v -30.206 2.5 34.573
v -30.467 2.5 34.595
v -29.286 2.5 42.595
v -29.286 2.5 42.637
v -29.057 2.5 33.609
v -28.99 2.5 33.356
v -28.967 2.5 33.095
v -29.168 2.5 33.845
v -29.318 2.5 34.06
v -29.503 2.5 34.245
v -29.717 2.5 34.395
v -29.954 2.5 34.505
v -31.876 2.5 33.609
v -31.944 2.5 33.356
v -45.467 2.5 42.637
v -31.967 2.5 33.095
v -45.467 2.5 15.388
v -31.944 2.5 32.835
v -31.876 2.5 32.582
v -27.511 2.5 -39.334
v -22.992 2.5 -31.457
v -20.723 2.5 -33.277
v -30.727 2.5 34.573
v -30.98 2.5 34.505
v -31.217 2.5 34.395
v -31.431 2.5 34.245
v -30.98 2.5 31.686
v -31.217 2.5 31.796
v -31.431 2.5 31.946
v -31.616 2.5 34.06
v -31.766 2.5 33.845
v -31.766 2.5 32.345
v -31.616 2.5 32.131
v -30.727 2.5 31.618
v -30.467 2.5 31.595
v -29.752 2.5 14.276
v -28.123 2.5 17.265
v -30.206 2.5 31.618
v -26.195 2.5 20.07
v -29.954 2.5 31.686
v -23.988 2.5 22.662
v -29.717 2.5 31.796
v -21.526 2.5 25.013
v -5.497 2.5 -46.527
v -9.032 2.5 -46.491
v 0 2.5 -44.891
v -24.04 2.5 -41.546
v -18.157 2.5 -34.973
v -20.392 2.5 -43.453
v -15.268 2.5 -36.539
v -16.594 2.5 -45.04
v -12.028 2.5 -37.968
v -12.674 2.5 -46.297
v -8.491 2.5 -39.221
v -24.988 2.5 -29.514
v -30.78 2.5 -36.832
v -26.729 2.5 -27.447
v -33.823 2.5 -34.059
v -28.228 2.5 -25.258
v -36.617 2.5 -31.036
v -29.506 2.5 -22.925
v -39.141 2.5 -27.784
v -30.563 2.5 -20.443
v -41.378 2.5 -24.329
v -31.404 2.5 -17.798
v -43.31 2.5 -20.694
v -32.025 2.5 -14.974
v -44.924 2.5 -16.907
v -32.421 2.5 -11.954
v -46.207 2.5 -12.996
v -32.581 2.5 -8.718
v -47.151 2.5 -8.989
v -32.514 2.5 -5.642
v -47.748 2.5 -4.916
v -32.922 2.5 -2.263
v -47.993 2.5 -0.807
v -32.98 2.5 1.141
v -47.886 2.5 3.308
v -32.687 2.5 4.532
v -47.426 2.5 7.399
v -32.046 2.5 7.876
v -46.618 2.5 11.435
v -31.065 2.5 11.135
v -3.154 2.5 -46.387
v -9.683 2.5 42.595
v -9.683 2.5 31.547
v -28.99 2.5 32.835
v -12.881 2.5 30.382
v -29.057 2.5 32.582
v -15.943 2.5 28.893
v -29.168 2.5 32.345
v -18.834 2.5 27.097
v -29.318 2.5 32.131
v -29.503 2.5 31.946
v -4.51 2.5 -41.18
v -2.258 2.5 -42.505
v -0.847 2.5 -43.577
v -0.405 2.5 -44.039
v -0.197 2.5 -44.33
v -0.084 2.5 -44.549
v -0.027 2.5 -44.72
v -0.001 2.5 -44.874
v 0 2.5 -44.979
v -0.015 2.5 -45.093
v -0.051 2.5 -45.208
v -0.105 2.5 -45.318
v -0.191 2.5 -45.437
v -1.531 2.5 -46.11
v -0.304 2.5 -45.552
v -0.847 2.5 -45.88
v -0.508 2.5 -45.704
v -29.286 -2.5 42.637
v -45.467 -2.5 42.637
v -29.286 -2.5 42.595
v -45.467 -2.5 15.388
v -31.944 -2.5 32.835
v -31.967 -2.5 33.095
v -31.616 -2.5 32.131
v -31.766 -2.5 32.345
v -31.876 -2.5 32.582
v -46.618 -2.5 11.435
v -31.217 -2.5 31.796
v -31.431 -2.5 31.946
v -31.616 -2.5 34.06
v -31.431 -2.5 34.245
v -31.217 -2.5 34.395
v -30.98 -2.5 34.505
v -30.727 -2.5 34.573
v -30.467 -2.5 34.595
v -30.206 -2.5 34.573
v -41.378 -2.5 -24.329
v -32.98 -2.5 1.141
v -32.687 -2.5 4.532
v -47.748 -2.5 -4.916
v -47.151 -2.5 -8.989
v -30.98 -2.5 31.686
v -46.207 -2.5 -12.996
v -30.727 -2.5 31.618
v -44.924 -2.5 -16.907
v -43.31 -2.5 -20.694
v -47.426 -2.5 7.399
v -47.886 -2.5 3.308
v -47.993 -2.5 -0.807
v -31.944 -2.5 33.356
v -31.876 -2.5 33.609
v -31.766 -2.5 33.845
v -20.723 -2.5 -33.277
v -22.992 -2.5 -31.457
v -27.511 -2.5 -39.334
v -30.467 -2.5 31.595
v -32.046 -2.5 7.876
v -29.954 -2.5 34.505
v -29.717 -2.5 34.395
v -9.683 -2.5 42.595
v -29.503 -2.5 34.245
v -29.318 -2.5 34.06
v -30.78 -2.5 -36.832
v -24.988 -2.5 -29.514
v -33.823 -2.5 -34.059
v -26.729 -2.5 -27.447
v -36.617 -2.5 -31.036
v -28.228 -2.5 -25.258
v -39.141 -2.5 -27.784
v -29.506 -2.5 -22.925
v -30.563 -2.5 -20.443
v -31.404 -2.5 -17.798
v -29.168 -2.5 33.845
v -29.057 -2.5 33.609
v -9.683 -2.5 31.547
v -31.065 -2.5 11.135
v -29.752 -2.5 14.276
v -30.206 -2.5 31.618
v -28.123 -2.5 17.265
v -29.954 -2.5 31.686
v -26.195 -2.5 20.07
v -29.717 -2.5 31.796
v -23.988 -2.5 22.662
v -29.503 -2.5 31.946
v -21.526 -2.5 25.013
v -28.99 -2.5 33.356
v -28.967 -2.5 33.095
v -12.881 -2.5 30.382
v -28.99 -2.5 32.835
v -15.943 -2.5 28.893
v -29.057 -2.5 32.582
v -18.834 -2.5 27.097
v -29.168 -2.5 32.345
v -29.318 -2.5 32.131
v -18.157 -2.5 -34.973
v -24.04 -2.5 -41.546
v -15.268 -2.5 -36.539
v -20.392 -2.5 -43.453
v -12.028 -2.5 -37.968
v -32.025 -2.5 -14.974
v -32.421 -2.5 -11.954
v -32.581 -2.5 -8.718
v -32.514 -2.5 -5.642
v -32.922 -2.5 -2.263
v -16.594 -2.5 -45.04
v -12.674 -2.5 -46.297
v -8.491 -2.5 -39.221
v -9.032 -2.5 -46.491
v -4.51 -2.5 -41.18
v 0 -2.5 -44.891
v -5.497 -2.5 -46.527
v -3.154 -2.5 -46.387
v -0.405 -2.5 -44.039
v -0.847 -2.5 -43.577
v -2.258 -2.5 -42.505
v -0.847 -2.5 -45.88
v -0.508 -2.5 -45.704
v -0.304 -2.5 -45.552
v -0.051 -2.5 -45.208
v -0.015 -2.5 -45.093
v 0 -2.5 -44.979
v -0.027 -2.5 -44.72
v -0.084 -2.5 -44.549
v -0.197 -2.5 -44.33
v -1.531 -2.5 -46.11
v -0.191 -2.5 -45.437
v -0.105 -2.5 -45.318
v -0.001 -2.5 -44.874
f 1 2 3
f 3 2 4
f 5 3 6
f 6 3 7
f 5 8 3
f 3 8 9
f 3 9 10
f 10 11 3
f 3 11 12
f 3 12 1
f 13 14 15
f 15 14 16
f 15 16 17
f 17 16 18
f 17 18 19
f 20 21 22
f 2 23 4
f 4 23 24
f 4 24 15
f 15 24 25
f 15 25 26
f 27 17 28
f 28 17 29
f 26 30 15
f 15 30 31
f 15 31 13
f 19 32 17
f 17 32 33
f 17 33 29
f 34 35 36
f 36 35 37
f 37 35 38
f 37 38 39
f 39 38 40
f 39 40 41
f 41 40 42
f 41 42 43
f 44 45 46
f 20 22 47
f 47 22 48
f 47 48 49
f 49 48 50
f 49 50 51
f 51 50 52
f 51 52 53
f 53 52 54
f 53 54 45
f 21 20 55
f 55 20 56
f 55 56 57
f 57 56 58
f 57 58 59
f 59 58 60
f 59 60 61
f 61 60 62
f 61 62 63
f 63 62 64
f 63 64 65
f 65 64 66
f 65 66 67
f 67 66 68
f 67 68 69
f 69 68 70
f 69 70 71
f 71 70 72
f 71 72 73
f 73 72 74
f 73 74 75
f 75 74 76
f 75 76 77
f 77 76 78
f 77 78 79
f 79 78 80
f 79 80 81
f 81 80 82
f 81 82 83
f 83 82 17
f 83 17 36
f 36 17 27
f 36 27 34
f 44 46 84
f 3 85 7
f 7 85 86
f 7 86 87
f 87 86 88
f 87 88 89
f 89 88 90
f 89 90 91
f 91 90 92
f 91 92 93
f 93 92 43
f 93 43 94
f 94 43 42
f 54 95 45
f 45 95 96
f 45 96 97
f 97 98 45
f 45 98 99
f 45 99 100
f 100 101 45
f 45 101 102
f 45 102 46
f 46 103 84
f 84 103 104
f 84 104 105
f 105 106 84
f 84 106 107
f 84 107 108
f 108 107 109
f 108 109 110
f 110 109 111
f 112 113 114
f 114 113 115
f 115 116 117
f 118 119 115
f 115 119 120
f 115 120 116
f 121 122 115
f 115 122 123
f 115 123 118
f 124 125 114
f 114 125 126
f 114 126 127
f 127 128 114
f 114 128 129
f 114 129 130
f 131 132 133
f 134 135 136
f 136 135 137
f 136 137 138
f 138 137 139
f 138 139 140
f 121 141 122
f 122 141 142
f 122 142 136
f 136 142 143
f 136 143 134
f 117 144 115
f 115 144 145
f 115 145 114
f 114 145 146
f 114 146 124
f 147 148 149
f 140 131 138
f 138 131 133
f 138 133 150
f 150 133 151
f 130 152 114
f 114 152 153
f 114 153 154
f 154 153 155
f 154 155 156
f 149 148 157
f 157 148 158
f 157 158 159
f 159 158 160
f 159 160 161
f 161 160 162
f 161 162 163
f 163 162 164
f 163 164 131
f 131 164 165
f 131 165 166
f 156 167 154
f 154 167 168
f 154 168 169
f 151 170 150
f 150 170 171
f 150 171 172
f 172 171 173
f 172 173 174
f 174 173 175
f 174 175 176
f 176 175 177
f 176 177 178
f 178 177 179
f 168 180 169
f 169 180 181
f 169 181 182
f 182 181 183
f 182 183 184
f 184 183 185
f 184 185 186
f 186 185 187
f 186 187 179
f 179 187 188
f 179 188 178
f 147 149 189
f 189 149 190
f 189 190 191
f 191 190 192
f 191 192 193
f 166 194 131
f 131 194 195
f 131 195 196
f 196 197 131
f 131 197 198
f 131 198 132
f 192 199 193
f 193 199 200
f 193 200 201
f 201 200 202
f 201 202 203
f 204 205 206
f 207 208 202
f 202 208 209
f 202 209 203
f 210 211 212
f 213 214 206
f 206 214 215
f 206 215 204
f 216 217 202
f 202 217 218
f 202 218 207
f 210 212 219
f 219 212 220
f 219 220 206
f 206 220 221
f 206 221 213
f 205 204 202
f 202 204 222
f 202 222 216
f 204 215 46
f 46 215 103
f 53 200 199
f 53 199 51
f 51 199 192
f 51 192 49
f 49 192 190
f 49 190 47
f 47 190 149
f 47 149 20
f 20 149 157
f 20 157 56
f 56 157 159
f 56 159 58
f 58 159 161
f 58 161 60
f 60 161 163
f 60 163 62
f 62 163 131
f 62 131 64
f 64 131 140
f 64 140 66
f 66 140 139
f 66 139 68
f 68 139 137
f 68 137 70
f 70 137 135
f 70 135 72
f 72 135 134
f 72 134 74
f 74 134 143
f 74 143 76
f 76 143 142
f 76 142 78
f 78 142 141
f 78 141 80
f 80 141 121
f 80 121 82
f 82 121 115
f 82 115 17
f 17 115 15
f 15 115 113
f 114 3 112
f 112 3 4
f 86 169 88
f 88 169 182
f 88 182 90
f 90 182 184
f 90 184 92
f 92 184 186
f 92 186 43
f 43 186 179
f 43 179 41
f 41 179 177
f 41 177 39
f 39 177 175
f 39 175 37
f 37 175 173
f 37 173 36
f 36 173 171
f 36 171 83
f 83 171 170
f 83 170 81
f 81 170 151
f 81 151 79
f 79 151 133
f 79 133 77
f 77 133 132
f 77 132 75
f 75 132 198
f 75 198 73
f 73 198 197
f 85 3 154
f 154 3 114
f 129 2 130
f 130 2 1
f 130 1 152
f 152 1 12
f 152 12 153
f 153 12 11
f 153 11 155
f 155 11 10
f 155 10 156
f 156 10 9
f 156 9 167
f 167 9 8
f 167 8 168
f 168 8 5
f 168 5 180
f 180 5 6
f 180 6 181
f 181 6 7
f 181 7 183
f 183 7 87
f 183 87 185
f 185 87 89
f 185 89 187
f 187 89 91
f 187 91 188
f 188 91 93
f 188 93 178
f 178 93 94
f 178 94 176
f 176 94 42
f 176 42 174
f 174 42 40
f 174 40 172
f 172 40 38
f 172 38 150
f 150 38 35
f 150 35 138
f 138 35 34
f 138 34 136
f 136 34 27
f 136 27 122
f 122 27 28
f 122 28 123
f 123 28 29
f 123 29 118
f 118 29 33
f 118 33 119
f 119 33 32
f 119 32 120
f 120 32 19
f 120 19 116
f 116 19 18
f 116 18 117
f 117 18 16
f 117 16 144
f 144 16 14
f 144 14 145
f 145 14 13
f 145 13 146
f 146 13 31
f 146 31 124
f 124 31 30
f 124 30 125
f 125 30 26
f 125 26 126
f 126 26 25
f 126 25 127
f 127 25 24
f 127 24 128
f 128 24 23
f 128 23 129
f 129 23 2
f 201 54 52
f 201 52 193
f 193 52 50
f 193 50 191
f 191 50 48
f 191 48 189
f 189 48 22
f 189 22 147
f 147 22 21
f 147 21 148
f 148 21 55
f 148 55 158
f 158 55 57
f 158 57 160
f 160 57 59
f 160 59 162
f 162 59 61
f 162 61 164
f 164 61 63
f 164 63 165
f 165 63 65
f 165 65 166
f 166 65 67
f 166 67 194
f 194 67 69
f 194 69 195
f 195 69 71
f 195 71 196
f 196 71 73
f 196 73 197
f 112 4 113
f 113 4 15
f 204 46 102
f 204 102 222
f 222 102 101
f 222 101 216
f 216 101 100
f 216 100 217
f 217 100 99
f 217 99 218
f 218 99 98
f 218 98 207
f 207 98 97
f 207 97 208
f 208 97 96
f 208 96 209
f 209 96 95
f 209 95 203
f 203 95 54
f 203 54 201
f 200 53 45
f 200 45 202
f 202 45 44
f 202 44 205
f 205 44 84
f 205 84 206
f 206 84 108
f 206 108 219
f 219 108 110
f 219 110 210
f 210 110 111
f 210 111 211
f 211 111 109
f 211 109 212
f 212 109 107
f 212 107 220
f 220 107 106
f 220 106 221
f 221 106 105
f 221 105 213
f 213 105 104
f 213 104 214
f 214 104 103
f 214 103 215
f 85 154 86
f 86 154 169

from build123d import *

# Parameters (mm, degrees)
BOSS_EXTRUDE1_DEPTH = 2.5
SKETCH2_W           = 39
SKETCH2_H           = 19
CUT_EXTRUDE2_DEPTH  = 119.291735722
SKETCH6_R           = 1.5
CUT_EXTRUDE11_DEPTH = 119.291735722
CUT_EXTRUDE17_DEPTH = 10
SKETCH17_W          = 77.591598172
SKETCH17_H          = 70.367911795
CUT_EXTRUDE19_DEPTH = 10
CUT_EXTRUDE20_DEPTH = 10
SKETCH18_W          = 37.449354942
SKETCH18_H          = 14.815690613
CUT_EXTRUDE21_DEPTH = 10


with BuildPart() as part:
    # Sketch1 → Boss-Extrude1 (new, symmetric)
    with BuildSketch(Plane(origin=(0, 0, 0), x_dir=(1, 0, 0), z_dir=(0, 1, 0))):
        with BuildLine():
            Line((25.786244138, -33), (0, -33))
            ThreePointArc((0, -33), (-33, 0), (0, 33))
            Line((0, 33), (0, 48))
            ThreePointArc((0, 48), (-39.003855832, 27.976762325), (-45.466733516, -15.387532074))
            Line((-45.466733516, -15.387532074), (-45.466733516, -107.999697871))
            Line((-45.466733516, -107.999697871), (25.786244138, -107.999697871))
            Line((25.786244138, -107.999697871), (25.786244138, -33))
        make_face()
        with BuildLine():
            Line((-7.096269411, -47.472549547), (0, -47.472549547))
            Line((0, -47.472549547), (0, -48))
            ThreePointArc((0, -48), (-3.55792227, -47.867955765), (-7.096269411, -47.472549547))
        make_face(mode=Mode.SUBTRACT)
    extrude(amount=BOSS_EXTRUDE1_DEPTH, both=True)

    # Sketch2 → Cut-Extrude2 (cut, through all)
    with BuildSketch(Plane(origin=(0, 2.5, 0), x_dir=(1, 0, 0), z_dir=(0, 1, 0))):
        with Locations((-9.786245396, -52.095481266)):
            Rectangle(SKETCH2_W, SKETCH2_H)
    extrude(amount=-CUT_EXTRUDE2_DEPTH, mode=Mode.SUBTRACT)

    # Sketch6 → Cut-Extrude11 (cut, through all)
    with BuildSketch(Plane(origin=(0, 2.5, 0), x_dir=(1, 0, 0), z_dir=(0, 1, 0))):
        with Locations(Location((-30.466733516, -33.095481266, 0), (0, 0, 270))):
            Circle(SKETCH6_R)
    extrude(amount=-CUT_EXTRUDE11_DEPTH, mode=Mode.SUBTRACT)

    # Sketch11 → Cut-Extrude17 (cut)
    with BuildSketch(Plane(origin=(0, 2.5, 0), x_dir=(1, 0, 0), z_dir=(0, 1, 0))):
        with BuildLine():
            Line((-8.49120153, 39.220810677), (-8.49120153, 31.888861638))
            Line((-8.49120153, 31.888861638), (-32.514043682, 5.642425314))
            add(Edge.make_bspline(
                [(-32.514043682, 5.642425314), (-33.882768602, 31.207106787), (-8.49120153, 39.220810677)],
                knots=[0, 0, 0, 1, 1, 1], degree=2))
        make_face()
    extrude(amount=-CUT_EXTRUDE17_DEPTH, mode=Mode.SUBTRACT)

    # Sketch17 → Cut-Extrude19 (cut)
    with BuildSketch(Plane(origin=(0, 2.5, 0), x_dir=(1, 0, 0), z_dir=(0, 1, 0))):
        with Locations((-13.009554948, -77.820837223)):
            Rectangle(SKETCH17_W, SKETCH17_H)
    extrude(amount=-CUT_EXTRUDE19_DEPTH, mode=Mode.SUBTRACT)

    # Sketch16 → Cut-Extrude20 (cut)
    with BuildSketch(Plane(origin=(0, 2.5, 0), x_dir=(1, 0, 0), z_dir=(0, 1, 0))):
        with BuildLine():
            Line((0, 33), (0, 44.891139614))
            add(Edge.make_bspline(
                [(-8.49120153, 39.220810677), (-0.101410447, 43.066470158), (0, 44.891139614)],
                knots=[0, 0, 0, 0.444669129, 0.444669129, 0.444669129], degree=2))
            Line((-8.49120153, 39.220810677), (-8.49120153, 31.888861638))
            ThreePointArc((-8.49120153, 31.888861638), (-4.281796699, 32.721036307), (0, 33))
        make_face()
        with BuildLine():
            ThreePointArc((0, 48), (-6.393855284, 47.572246264), (-12.673752424, 46.296608942))
            add(Edge.make_bspline(
                [(0, 44.979230614), (-0.124166201, 47.152790476), (-12.673752424, 46.296608942)],
                knots=[0.455550409, 0.455550409, 0.455550409, 1, 1, 1], degree=2))
            Line((0, 44.979230614), (0, 48))
        make_face()
    extrude(amount=-CUT_EXTRUDE20_DEPTH, mode=Mode.SUBTRACT)

    # Sketch18 → Cut-Extrude21 (cut)
    with BuildSketch(Plane(origin=(0, 2.5, 0), x_dir=(1, 0, 0), z_dir=(0, 1, 0))):
        with Locations((9.041844157, -37.897729007)):
            Rectangle(SKETCH18_W, SKETCH18_H)
    extrude(amount=-CUT_EXTRUDE21_DEPTH, mode=Mode.SUBTRACT)


solid = part.part
